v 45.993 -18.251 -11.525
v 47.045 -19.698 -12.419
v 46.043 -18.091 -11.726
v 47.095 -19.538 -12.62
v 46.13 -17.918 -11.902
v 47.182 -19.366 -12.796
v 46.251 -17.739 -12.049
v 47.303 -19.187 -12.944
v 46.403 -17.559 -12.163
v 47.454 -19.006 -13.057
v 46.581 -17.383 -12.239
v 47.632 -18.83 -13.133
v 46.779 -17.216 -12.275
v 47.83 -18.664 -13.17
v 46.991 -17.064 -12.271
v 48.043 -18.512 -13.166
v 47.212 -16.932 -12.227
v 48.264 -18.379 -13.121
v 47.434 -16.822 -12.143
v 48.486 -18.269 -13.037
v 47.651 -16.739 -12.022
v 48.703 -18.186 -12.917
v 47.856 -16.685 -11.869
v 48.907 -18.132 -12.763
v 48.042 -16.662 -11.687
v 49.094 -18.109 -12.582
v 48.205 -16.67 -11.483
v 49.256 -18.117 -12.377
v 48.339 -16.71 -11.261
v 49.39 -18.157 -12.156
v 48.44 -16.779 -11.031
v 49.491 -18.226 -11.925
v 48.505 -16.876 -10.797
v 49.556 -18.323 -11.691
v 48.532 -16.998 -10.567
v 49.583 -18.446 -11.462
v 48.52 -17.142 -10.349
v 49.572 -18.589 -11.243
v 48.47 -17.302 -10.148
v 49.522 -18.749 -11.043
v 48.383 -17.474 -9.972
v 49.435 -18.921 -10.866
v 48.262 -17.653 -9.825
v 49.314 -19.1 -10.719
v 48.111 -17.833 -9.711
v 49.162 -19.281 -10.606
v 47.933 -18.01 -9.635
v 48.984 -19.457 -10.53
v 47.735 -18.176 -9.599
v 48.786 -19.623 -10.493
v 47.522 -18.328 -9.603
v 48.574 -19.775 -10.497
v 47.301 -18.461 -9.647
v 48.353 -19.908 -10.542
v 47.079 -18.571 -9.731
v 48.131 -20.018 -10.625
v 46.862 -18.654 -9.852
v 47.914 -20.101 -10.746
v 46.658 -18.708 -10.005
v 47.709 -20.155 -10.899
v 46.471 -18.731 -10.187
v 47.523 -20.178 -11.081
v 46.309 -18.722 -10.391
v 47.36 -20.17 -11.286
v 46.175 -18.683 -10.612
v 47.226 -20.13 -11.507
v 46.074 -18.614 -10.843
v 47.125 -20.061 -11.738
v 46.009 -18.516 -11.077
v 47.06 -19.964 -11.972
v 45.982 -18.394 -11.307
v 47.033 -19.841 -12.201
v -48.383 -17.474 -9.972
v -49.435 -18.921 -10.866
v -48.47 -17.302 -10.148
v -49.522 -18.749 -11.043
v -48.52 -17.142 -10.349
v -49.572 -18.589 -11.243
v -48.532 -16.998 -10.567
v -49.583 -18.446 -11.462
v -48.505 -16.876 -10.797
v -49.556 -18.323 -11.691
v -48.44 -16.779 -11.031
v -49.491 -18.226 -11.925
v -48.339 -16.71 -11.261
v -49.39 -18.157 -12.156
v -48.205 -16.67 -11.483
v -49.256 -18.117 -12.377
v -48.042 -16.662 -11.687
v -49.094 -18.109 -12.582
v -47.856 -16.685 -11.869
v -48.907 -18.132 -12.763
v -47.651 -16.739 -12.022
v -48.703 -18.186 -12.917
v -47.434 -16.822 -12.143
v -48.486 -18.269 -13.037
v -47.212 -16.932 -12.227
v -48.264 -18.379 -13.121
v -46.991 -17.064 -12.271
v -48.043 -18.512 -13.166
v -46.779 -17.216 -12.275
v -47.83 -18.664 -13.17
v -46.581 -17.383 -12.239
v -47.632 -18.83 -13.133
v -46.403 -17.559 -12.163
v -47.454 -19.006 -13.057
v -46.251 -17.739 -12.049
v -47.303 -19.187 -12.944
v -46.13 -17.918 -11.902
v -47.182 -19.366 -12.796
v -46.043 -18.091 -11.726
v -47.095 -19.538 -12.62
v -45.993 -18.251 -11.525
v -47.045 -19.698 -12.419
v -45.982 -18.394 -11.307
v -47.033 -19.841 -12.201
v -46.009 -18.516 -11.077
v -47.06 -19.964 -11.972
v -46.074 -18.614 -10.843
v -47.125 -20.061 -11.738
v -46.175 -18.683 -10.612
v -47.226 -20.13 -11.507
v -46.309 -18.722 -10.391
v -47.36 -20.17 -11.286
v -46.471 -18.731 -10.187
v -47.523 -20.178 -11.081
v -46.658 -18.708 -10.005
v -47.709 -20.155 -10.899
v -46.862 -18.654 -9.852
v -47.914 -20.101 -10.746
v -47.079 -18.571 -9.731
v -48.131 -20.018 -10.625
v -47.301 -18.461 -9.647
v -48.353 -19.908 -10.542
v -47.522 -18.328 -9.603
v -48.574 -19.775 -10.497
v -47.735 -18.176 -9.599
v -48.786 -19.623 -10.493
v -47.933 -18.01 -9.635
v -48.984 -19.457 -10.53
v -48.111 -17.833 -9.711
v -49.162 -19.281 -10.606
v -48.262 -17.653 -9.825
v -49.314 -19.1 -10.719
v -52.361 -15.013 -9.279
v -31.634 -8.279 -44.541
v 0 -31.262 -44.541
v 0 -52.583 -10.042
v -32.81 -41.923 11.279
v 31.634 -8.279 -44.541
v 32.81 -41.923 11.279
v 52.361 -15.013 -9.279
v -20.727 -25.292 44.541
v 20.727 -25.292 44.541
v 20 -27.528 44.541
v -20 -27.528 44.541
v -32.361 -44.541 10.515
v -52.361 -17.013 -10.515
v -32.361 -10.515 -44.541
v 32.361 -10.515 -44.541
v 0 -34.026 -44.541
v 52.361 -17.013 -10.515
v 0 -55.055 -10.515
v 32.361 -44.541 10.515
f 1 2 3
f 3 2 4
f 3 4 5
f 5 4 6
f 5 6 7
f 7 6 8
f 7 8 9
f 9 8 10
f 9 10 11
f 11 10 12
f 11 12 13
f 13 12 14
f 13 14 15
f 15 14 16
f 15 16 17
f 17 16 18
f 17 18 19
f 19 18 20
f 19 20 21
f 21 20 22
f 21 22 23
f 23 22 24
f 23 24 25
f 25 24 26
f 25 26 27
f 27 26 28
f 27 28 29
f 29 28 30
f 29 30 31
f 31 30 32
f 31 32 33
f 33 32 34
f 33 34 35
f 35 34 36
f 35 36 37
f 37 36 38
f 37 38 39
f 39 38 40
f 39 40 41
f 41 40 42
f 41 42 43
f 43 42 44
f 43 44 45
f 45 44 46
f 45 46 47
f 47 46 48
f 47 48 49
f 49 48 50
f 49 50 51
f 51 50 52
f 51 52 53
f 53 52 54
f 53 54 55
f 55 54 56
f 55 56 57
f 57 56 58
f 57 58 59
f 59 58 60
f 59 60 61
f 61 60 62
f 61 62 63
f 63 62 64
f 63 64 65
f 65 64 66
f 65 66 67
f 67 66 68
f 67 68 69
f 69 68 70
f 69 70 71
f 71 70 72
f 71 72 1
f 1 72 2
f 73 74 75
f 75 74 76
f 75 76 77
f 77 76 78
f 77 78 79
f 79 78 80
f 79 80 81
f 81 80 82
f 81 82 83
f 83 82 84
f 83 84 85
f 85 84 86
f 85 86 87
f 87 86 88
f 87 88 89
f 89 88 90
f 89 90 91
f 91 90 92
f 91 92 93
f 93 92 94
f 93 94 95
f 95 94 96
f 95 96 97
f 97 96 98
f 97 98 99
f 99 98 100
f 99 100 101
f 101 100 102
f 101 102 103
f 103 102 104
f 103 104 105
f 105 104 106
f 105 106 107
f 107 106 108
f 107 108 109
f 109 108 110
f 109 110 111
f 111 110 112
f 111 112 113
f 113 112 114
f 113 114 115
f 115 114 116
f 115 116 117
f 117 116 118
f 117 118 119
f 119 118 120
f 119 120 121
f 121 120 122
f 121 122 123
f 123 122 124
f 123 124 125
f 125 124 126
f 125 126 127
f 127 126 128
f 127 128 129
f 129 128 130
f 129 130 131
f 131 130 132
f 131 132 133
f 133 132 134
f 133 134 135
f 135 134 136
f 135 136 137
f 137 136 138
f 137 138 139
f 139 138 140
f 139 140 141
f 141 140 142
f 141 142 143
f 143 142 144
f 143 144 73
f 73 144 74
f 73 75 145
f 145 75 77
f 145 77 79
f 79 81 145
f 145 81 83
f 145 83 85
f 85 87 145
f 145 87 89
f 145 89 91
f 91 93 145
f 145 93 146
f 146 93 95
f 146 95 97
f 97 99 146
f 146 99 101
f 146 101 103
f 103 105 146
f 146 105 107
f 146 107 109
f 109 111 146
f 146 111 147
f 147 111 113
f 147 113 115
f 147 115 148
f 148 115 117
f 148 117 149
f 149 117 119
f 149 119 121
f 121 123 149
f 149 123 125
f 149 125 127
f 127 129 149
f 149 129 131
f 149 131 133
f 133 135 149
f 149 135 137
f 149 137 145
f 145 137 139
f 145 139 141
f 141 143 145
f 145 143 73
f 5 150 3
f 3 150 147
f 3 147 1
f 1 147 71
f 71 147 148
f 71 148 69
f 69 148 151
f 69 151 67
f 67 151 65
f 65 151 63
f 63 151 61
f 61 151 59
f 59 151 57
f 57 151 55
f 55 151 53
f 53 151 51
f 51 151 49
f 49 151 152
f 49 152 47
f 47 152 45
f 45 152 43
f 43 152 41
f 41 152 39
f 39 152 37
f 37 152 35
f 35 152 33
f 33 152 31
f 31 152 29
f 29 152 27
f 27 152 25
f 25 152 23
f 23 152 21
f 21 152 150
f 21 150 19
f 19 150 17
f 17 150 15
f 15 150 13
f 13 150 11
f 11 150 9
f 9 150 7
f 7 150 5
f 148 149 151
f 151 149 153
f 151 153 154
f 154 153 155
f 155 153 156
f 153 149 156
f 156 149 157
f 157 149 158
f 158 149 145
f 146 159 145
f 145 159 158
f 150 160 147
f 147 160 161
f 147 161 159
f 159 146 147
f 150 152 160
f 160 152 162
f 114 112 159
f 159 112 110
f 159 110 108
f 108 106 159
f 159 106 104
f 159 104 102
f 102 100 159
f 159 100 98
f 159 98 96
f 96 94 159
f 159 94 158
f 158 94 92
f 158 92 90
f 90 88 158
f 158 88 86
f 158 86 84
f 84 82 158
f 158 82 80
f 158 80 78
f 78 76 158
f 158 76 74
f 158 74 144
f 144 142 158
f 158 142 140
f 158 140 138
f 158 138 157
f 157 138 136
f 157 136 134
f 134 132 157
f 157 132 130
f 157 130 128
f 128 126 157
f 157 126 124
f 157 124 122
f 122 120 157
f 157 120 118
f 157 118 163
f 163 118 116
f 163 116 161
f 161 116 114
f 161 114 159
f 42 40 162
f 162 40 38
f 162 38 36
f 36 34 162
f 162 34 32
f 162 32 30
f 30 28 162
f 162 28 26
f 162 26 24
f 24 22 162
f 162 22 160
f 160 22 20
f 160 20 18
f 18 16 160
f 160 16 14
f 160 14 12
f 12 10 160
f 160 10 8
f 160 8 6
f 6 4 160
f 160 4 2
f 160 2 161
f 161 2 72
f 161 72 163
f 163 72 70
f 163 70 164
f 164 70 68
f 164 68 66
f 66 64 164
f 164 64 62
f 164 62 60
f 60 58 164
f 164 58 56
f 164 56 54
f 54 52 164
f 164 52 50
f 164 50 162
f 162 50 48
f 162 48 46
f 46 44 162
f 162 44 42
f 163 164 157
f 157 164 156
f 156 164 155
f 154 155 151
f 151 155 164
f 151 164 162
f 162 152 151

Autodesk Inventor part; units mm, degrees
ref_plane "YZ Plane" through (0, 0, 0) normal (1, 0, 0) x (0, 1, 0)
ref_plane "XZ Plane" through (0, 0, 0) normal (0, 1, 0) x (-1, 0, 0)
ref_plane "Work Plane1" through (0, 0, 44.5407) normal (0, 0, 1) x (1, 0, 0)
sketch "Sketch2" plane through (0, 0, 44.5407) normal (0, 0, 1) x (1, 0, 0)
  line L0 (0, 34.026) -> (32.3607, 10.5146)
  line L1 (32.3607, 10.5146) -> (20, -27.5276)
  line L2 (20, -27.5276) -> (-20, -27.5276)
  line L3 (-20, -27.5276) -> (-32.3607, 10.5146)
  line L4 (-32.3607, 10.5146) -> (0, 34.026)
  point P0 (0, 0)
  point P1 (0, 0)
  dimension "d2" = 40
loft "Loft1" add profiles "Sketch2" section 2 point at (0, 0, 0)
mirror "Mirror1" about plane through (32.3607, 10.5146, 44.5407) normal (0.809017, -0.2628656, -0.5257311) of "Loft1"
mirror "Mirror2" about plane through (20, -27.5276, 44.5407) normal (0, -0.8506508, -0.5257311) of "Loft1"
mirror "Mirror3" about plane through (-20, -27.5276, 44.5407) normal (-0.809017, -0.2628656, -0.5257311) of "Loft1"
mirror "Mirror4" about plane through (-32.3607, 10.5146, 44.5407) normal (-0.5, 0.688191, -0.5257311) of "Loft1"
mirror "Mirror5" about plane through (0, 34.026, 44.5407) normal (0.5, 0.688191, -0.5257311) of "Loft1"
mirror "Mirror6" about plane through (-52.3607, -17.013, -10.5146) normal (0.309017, -0.4253254, -0.8506508) of "Loft1", "Mirror3"
mirror "Mirror7" about plane through (-52.3607, 17.013, 10.5146) normal (0, 0.5257311, -0.8506508) of "Loft1", "Mirror3"
mirror "Mirror8" about plane through (52.3607, -17.013, -10.5146) normal (0, 0.5257311, -0.8506508) of "Loft1", "Mirror1"
mirror "Mirror9" about plane through (20, 27.5276, -44.5407) normal (-0.809017, -0.2628656, -0.5257311) of "Loft1", "Mirror1", "Mirror8"
shell "Shell1" thickness 2 removed faces 9 at (-17.4536, 35.3648, 21.8566) at (0, 36.7035, -26.1889) at (21.5738, 29.6938, 26.1889) at (-6.6667, -2.1661, 44.5407) at (39.0273, -5.671, 21.8566) at (39.0273, 17.013, -14.8469) at (-4.1202, -5.671, -44.5407) at (-41.5738, 9.1759, -14.8469) at (-39.0273, -5.671, 21.8566)
sketch "Sketch3" plane through (-32.3607, -44.5407, 10.5146) normal (-0.5257311, -0.7236068, -0.4472136) x (0.809017, -0.2628656, -0.5257311)
  line L0 (-13.5363, -38.4242) -> (20, -62.7897) projected
  line L1 (-13.5363, -38.4242) -> (-8.0063, -42.442)
  line L2 (-1.4531, -1.2361) -> (-13.5363, -38.4242) projected
  line L3 (-13.5363, -38.4242) -> (-11.5295, -32.2482)
  line L4 (-13.5363, -38.4242) -> (-7.8299, -36.5701)
  circle A0 centre (-7.8299, -36.5701) radius 1.5
  point P0 (20, -27.5276)
  dimension "d8" = 6
  dimension "d9" = 54
  dimension "d10" = 108
  dimension "d11" = 3
extrude "Extrusion1" cut sketch "Sketch3" against normal through all
sketch "Sketch4" plane through (0, -55.0553, -10.5146) normal (0.5257311, -0.7236068, -0.4472136) x (0.809017, 0.2628656, 0.5257311)
  line L0 (52.3607, -38.0423) -> (53.5363, -38.4242) projected
  line L1 (53.5363, -38.4242) -> (50.6191, -40.5437)
  line L2 (20, -62.7897) -> (53.5363, -38.4242) projected
  line L3 (53.5363, -38.4242) -> (53.5363, -38.4242)
  line L4 (53.5363, -38.4242) -> (41.4531, -1.2361) projected
  line L5 (53.5363, -38.4242) -> (47.8299, -36.5701)
  circle A0 centre (47.8299, -36.5701) radius 1.5
  point P0 (20, -27.5276)
  dimension "d14" = 6
  dimension "d15" = 108
  dimension "d16" = 54
  dimension "d17" = 3
extrude "Extrusion2" cut sketch "Sketch4" against normal through all
equation "\"d9\" = 0.5 * d10"
properties part number "dodecahedron"
